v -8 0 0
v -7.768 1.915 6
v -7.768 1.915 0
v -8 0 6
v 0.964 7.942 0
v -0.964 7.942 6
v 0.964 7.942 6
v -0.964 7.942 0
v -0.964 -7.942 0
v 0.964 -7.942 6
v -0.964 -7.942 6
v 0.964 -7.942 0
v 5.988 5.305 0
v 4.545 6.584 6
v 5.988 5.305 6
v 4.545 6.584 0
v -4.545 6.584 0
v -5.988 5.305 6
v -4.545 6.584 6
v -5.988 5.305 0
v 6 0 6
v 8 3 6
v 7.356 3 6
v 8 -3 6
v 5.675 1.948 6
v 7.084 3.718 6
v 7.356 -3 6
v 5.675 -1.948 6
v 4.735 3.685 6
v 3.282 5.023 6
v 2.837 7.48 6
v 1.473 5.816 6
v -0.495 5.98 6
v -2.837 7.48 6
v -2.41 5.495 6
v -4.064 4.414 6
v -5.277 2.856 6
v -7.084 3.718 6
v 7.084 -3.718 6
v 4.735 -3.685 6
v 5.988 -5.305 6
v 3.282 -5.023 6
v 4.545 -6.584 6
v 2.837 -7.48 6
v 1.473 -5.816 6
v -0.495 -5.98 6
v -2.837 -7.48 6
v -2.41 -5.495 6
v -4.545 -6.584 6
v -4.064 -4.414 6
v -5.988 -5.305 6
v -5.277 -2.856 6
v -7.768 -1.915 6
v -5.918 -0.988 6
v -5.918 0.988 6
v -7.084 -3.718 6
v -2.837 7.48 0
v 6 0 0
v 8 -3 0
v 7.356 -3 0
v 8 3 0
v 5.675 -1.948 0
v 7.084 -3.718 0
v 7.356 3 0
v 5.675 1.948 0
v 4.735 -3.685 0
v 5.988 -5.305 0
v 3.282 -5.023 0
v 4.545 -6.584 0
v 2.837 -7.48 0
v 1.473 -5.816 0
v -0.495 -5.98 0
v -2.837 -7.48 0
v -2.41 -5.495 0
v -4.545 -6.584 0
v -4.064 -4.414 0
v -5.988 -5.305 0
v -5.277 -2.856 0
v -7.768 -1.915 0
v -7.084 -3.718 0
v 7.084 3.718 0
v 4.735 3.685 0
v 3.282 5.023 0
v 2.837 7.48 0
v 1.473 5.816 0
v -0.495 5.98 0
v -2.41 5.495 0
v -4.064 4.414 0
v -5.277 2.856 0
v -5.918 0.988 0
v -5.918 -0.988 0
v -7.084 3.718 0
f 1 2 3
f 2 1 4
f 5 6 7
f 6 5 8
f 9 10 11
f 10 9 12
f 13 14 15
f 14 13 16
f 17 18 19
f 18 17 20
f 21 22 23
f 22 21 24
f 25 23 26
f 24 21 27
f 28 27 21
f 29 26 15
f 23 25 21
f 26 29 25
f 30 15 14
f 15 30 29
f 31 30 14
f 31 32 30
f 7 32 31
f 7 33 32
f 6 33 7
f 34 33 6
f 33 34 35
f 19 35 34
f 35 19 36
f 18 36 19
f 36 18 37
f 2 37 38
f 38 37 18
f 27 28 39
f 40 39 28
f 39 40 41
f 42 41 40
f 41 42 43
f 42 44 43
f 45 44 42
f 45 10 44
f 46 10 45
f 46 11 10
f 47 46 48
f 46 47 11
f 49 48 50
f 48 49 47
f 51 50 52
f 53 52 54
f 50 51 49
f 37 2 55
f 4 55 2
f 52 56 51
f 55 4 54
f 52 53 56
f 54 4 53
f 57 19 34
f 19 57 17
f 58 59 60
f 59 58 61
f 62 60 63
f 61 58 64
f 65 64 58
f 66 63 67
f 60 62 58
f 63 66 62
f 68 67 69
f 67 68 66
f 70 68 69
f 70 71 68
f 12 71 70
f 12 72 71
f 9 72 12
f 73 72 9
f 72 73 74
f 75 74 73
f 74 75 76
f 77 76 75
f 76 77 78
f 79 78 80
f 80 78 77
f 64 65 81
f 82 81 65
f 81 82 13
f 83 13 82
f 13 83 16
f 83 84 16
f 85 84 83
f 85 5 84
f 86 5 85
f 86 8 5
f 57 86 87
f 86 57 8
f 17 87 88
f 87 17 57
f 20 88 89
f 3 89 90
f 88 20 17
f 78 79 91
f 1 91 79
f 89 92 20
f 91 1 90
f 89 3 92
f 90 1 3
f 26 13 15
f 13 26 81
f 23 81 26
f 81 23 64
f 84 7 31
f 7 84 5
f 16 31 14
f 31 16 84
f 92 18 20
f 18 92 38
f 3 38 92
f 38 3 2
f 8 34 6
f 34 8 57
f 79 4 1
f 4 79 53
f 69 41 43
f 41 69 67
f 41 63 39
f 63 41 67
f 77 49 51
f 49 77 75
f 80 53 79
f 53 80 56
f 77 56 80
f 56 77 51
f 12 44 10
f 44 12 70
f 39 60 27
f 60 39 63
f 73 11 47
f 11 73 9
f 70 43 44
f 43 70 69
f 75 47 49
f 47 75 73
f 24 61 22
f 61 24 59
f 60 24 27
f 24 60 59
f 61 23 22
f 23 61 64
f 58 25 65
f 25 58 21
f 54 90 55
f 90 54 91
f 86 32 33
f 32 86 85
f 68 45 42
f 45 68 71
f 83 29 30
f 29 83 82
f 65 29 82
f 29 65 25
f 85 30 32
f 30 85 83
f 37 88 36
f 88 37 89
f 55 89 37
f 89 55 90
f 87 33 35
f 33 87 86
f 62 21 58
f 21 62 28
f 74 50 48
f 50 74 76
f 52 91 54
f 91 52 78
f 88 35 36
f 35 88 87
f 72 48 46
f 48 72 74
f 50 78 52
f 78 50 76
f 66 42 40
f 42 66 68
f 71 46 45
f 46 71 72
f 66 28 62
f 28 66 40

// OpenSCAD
inner_diameter = 12;
outer_diameter = 16;
height = 6;

difference() {
    union() {
        cylinder(h=height, d=outer_diameter);
        translate([0,(-height/2),0]) cube([outer_diameter*0.5, height, height]);
    }
    cylinder(h=height, d=inner_diameter);
}
